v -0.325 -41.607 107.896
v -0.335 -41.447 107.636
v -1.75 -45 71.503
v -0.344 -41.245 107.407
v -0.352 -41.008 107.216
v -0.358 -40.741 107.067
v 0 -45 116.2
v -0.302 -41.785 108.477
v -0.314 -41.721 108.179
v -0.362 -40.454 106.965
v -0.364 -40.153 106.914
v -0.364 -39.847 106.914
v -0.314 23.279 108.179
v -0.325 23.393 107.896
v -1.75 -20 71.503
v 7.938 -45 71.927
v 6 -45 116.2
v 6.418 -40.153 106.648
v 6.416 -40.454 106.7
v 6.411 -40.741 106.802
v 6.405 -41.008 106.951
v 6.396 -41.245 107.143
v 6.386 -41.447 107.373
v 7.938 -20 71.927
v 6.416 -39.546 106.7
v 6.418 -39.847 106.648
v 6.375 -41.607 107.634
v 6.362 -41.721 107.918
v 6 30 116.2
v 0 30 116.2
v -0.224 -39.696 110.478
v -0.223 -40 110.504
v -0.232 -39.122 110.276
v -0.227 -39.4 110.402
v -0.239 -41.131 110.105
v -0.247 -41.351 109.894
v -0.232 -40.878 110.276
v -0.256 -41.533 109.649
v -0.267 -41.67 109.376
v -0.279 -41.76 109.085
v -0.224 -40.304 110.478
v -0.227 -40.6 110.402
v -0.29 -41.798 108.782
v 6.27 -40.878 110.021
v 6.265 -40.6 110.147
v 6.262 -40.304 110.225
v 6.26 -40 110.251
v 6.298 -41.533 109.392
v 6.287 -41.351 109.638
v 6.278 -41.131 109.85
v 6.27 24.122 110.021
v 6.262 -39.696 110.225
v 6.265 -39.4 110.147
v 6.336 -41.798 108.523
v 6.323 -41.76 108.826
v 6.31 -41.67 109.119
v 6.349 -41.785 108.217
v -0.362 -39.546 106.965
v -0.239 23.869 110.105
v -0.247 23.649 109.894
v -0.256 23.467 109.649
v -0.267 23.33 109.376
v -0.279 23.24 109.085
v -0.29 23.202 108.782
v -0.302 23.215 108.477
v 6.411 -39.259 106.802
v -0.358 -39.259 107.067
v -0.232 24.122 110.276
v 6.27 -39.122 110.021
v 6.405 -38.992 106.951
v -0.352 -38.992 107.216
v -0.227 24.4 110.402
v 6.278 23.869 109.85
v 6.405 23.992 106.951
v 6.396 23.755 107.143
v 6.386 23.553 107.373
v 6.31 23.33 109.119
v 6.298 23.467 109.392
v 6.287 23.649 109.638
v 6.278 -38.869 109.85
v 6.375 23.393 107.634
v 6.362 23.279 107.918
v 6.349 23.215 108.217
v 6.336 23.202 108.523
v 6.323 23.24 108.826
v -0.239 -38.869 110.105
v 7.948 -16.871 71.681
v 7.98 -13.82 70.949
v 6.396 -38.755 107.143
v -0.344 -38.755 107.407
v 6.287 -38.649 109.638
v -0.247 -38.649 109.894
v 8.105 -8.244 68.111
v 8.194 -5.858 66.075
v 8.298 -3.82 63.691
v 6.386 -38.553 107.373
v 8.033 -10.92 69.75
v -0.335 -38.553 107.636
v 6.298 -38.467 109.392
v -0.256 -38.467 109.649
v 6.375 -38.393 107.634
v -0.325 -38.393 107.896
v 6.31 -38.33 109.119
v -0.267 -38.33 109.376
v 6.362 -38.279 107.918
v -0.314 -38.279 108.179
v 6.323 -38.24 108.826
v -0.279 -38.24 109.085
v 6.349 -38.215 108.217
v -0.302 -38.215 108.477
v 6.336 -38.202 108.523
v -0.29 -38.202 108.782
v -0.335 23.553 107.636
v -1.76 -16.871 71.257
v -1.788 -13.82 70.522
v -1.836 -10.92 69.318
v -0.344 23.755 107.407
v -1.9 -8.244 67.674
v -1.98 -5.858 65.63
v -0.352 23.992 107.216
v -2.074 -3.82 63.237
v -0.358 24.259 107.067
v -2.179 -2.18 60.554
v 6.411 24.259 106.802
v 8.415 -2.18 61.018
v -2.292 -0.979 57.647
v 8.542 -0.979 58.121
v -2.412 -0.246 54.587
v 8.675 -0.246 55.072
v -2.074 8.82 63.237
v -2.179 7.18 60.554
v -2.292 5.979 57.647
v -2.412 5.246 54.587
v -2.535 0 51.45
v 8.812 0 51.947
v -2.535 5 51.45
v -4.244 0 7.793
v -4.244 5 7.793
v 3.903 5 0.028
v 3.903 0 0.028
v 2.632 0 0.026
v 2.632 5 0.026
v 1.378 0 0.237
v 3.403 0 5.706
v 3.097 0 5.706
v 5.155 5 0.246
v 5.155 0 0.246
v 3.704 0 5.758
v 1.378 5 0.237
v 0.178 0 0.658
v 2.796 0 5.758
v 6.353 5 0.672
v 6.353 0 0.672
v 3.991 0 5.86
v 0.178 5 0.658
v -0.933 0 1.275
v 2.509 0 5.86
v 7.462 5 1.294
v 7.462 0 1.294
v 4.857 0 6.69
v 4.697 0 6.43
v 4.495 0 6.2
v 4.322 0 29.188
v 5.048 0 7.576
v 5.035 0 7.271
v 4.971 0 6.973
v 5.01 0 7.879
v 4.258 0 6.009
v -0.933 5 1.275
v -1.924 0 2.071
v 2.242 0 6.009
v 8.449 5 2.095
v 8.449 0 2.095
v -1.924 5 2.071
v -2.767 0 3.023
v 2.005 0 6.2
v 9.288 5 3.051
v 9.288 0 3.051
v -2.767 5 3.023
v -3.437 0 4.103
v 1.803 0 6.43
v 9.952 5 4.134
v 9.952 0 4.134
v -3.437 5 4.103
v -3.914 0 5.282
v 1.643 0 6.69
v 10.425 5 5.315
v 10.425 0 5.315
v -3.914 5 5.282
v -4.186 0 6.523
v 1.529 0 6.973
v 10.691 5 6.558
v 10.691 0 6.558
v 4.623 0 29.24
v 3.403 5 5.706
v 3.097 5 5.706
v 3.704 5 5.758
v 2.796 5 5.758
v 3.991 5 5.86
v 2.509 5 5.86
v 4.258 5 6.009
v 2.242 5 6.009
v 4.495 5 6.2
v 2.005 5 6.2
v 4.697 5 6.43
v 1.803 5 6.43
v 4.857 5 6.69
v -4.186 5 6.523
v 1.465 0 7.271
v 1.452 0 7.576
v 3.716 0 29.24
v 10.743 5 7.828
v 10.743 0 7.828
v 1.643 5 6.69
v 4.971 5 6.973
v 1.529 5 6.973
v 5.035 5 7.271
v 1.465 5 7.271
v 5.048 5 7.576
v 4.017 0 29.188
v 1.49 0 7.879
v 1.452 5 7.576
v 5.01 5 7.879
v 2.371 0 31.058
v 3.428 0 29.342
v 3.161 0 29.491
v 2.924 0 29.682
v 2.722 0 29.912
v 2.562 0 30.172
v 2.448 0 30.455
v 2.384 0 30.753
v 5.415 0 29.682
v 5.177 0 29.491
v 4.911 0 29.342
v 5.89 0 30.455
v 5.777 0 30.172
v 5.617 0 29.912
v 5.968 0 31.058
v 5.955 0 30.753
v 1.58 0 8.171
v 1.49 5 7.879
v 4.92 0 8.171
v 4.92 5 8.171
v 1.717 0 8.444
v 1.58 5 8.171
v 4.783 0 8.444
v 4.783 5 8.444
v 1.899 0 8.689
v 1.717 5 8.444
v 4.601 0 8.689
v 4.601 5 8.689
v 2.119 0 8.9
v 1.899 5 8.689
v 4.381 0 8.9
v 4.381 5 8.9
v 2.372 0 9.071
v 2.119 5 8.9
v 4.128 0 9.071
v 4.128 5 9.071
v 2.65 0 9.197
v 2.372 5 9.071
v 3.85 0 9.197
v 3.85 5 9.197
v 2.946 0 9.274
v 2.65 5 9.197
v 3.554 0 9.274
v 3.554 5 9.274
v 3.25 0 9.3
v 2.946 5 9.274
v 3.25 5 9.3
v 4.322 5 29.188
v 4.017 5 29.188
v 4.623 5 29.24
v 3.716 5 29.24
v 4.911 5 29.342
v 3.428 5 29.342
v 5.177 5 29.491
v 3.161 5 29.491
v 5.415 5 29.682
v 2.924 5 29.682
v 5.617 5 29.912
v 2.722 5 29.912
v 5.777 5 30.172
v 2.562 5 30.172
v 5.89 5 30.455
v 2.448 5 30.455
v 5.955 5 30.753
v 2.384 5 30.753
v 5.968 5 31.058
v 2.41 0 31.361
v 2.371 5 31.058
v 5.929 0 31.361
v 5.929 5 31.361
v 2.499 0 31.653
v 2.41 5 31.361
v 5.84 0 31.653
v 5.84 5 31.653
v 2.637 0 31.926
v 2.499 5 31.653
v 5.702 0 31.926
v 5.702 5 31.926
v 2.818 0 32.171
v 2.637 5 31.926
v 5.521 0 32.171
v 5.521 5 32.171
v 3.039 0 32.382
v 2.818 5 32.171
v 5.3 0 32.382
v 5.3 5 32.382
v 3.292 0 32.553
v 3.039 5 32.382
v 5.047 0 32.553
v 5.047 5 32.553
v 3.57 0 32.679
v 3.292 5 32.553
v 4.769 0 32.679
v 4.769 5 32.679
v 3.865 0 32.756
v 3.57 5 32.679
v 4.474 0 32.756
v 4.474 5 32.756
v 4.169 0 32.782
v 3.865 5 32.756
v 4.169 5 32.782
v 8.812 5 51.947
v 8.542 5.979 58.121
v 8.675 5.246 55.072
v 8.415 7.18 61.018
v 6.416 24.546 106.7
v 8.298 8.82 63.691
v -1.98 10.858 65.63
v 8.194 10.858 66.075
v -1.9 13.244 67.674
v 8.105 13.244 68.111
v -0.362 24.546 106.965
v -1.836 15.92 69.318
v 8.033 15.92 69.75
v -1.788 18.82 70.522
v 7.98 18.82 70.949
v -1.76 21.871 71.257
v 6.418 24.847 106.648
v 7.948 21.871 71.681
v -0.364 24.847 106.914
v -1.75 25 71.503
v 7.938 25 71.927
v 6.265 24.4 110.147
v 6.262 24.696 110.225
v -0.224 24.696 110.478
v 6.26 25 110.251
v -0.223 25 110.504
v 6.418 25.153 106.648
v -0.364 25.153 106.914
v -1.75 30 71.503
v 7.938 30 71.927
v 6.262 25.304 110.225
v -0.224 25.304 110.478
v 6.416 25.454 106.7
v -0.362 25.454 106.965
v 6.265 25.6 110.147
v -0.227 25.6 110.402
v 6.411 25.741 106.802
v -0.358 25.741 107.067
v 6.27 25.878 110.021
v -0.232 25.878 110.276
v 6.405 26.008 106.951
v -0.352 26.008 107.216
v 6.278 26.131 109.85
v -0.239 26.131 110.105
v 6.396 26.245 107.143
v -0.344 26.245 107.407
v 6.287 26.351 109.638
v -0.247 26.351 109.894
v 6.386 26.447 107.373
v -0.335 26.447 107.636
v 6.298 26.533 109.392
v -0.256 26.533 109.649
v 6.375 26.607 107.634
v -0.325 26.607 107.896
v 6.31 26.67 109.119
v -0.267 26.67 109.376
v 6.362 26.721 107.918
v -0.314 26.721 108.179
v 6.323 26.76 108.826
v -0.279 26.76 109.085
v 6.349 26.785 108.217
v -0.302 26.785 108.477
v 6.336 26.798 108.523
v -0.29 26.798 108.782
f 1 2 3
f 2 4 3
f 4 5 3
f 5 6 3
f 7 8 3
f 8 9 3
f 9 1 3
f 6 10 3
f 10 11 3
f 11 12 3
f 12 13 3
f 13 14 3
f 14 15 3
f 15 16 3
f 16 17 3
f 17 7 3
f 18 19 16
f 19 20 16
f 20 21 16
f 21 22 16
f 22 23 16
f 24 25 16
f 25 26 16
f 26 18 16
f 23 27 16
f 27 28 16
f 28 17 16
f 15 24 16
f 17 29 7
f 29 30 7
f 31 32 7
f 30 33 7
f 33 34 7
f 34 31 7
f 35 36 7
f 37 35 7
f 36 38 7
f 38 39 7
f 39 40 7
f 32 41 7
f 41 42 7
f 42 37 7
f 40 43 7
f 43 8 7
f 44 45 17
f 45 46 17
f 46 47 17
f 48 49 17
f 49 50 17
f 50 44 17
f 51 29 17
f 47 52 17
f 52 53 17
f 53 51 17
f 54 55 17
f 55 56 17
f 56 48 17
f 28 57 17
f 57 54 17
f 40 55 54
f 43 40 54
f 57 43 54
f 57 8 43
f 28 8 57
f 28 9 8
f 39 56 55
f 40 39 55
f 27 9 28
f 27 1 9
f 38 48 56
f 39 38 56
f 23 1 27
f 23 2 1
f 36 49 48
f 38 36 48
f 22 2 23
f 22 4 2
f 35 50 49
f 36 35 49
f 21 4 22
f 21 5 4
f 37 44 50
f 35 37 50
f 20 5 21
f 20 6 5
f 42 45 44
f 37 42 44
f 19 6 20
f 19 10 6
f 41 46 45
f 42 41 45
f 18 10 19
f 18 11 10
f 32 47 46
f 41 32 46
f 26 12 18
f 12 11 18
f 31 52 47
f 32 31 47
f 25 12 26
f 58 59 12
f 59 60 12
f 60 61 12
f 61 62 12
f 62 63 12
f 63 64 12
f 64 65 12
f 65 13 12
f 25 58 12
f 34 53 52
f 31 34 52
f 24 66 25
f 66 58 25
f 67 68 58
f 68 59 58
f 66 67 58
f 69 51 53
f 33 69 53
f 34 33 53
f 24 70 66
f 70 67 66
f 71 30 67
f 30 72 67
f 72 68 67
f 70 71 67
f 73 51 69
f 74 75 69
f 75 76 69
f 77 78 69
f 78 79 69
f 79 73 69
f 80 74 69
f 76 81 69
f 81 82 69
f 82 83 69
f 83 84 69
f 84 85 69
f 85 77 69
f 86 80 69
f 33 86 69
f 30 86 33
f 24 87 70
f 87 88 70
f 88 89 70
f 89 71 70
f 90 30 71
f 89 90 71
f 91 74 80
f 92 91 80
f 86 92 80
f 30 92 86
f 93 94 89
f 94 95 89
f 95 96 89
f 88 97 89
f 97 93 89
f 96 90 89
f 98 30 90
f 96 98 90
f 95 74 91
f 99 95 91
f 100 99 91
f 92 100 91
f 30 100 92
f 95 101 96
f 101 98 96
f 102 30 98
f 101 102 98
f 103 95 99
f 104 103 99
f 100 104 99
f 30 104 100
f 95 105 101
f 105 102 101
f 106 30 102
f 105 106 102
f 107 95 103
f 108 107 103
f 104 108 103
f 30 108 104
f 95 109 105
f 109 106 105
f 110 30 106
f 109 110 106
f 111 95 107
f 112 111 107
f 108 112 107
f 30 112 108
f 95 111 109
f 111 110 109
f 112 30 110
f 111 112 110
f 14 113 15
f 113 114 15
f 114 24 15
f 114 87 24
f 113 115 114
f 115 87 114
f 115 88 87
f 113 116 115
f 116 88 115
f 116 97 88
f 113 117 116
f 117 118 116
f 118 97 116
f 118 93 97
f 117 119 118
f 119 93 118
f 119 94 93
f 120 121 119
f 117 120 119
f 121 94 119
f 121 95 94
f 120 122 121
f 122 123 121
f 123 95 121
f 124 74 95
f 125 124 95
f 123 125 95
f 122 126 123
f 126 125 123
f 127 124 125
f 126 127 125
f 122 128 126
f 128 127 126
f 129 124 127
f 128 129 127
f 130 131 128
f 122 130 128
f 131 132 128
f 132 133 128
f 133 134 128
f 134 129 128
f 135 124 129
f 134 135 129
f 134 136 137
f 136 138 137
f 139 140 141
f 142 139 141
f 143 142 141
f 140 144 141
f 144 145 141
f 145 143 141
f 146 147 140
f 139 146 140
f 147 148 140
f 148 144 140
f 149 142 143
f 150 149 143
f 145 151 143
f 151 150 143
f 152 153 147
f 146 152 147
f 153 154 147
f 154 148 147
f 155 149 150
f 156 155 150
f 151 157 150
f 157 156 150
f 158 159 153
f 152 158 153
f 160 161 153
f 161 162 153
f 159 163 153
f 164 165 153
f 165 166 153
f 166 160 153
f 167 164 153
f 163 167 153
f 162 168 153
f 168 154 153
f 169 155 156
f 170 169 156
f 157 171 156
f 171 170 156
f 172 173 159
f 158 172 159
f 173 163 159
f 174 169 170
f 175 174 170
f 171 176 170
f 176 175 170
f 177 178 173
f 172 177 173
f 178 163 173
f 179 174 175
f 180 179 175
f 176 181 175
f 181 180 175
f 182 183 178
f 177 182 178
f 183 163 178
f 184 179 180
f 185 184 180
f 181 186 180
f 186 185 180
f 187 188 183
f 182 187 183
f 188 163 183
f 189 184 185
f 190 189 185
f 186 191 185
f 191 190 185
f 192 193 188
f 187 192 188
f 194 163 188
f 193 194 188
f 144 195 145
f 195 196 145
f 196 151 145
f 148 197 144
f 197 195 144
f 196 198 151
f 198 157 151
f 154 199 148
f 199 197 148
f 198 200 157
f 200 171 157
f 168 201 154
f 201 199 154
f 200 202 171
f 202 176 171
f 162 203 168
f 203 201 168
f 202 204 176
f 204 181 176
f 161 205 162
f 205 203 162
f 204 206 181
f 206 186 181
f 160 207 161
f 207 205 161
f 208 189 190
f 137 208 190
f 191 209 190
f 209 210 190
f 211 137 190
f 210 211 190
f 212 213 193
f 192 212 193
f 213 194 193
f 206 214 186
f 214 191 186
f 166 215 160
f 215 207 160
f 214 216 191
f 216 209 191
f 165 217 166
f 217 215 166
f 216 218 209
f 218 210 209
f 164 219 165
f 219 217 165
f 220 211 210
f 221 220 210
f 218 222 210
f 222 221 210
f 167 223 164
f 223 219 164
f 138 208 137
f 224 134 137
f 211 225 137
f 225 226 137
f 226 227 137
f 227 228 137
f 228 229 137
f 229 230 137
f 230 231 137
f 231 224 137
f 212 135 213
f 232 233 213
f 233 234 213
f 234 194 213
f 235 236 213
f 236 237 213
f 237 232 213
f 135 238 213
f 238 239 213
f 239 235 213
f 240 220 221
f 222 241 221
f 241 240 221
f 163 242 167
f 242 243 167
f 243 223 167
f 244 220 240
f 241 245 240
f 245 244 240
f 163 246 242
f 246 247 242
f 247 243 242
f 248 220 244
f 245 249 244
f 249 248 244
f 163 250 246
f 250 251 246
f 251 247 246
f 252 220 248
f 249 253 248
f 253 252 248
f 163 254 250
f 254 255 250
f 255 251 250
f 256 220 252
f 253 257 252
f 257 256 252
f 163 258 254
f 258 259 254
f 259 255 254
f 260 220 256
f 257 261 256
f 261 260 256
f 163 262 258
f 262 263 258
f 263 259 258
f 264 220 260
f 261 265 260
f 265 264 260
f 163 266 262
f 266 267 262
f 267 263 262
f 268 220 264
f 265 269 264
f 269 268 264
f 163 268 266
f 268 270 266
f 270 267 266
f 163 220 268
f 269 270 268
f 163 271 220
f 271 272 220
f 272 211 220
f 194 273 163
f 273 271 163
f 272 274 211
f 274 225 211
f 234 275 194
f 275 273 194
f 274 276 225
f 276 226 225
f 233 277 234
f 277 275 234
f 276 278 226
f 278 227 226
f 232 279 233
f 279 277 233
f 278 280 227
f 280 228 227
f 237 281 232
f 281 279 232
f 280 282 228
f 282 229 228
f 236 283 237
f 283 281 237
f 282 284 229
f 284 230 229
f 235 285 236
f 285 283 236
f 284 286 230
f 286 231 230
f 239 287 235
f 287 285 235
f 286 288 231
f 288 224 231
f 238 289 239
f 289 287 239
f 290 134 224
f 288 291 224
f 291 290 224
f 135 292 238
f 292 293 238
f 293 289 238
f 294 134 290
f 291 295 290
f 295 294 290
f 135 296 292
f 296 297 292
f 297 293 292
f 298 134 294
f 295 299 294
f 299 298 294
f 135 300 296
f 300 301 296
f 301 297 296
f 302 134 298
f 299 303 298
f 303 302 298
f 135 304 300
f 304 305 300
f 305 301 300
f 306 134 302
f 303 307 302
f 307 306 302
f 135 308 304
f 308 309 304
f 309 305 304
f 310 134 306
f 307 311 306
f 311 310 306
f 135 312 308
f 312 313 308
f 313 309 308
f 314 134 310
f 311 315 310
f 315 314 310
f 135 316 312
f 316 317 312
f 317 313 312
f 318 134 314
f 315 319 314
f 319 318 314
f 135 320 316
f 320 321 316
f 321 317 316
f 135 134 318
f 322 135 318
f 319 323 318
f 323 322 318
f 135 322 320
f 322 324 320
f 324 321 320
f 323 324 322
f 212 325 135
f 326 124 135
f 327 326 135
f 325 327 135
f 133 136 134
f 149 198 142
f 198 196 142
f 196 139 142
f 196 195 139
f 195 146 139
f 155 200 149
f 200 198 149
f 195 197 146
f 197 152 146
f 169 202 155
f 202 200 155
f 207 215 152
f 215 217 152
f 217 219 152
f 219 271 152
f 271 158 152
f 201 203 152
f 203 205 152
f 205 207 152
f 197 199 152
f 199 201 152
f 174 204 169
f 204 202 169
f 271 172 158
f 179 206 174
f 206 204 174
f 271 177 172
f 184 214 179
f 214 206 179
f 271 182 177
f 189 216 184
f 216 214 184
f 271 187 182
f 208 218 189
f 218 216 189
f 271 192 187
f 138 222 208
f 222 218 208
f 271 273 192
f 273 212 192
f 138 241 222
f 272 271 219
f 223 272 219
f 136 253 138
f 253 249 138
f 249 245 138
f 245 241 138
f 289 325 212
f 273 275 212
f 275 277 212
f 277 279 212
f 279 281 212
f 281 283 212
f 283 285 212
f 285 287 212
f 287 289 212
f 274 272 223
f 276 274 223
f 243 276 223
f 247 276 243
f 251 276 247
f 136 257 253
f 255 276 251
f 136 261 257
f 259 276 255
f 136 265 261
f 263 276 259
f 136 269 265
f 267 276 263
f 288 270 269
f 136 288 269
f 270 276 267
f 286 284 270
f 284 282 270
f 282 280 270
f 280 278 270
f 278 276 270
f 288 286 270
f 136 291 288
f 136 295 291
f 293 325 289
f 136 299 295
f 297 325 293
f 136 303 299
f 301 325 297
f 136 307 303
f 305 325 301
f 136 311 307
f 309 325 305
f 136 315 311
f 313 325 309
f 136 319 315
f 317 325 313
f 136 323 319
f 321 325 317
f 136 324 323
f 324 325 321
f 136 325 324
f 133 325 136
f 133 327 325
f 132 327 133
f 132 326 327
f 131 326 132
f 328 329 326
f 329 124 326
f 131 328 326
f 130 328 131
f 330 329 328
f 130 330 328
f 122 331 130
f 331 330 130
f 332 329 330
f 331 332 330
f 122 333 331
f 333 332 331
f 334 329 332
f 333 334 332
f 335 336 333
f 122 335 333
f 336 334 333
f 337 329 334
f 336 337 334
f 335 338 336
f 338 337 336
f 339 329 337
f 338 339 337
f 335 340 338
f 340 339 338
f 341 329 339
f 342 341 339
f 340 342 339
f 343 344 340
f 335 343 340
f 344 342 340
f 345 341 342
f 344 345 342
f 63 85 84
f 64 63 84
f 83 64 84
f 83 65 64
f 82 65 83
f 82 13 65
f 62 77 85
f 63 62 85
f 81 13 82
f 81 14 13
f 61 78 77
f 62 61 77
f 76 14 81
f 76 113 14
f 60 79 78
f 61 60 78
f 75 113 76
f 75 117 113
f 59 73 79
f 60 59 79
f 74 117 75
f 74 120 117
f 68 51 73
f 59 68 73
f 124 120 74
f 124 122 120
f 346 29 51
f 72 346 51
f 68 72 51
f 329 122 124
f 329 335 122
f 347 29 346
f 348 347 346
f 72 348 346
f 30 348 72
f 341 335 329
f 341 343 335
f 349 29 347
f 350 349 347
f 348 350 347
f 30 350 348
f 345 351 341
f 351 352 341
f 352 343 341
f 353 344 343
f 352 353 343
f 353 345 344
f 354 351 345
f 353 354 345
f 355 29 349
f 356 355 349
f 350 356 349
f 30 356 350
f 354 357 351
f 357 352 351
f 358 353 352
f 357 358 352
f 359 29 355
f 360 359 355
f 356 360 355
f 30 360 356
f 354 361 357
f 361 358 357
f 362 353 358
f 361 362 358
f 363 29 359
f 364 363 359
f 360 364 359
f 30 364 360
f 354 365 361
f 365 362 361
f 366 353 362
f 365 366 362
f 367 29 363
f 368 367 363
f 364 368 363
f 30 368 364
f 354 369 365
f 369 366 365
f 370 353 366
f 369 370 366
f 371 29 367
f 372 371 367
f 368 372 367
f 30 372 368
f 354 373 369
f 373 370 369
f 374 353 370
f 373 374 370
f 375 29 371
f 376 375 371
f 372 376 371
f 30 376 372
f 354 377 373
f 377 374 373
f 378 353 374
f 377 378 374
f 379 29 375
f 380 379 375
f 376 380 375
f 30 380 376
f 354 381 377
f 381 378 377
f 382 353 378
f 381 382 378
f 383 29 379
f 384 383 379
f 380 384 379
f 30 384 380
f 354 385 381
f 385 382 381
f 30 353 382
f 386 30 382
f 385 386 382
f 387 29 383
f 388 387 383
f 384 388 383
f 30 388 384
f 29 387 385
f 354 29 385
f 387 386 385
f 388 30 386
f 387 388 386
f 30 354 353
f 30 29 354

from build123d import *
from build123d.topology import SkipClean

# Parameters (mm, degrees)
BOSS_EXTRUDE1_DEPTH      = 5
BOSS_EXTRUDE2_DEPTH      = 25
BOSS_EXTRUDE2_DEPTH_BACK = 50
FILLET1_R                = 20
SKETCH3_R                = 1.8
CUT_EXTRUDE1_DEPTH       = 19
SKETCH4_R                = 1.8
CUT_EXTRUDE2_DEPTH       = 10


with BuildPart() as part:
    # Sketch1 → Boss-Extrude1 (new body)
    with SkipClean():  # the faces are left unmerged after this step: merging them gives an invalid solid
        with BuildSketch(Plane(origin=(0, 0, 0), x_dir=(1, 0, 0), z_dir=(0, 1, 0))):
            with BuildLine():
                ThreePointArc((0, -0.740747083), (-3.176101933, -3.632802831), (-4.24425851, -7.793409934))
                Line((-4.24425851, -7.793409934), (0, -14.259252917))
                Line((0, -14.259252917), (0, -0.740747083))
            make_face()
            with BuildLine():
                Line((6, -0.522357132), (6, -14.477642868))
                Line((6, -14.477642868), (10.742827875, -7.827918338))
                ThreePointArc((10.742827875, -7.827918338), (10.748206754, -7.663998381), (10.75, -7.5))
                ThreePointArc((10.75, -7.5), (9.449798384, -3.279514246), (6, -0.522357132))
            make_face()
            with BuildLine():
                Line((0, -0.740747083), (0, -14.259252917))
                ThreePointArc((0, -14.259252917), (2.977193214, -14.995036788), (6, -14.477642868))
                Line((6, -14.477642868), (6, -0.522357132))
                ThreePointArc((6, -0.522357132), (4.649585383, -0.131746424), (3.25, 0))
                ThreePointArc((3.25, 0), (1.583326199, -0.187531303), (0, -0.740747083))
            make_face()
            with BuildLine():
                ThreePointArc((0, -14.259252917), (-3.019892671, -11.615634325), (-4.24425851, -7.793409934))
                Line((-4.24425851, -7.793409934), (0, -116.2))
                Line((0, -116.2), (0, -14.259252917))
            make_face()
            with BuildLine():
                Line((6, -14.477642868), (6, -116.2))
                Line((6, -116.2), (10.742827875, -7.827918338))
                ThreePointArc((10.742827875, -7.827918338), (9.356028972, -11.855044225), (6, -14.477642868))
            make_face()
            with BuildLine():
                Line((0, -14.259252917), (0, -116.2))
                Line((0, -116.2), (6, -116.2))
                Line((6, -116.2), (6, -14.477642868))
                ThreePointArc((6, -14.477642868), (2.977193214, -14.995036788), (0, -14.259252917))
            make_face()
            with BuildLine():
                Line((10.742827875, -7.827918338), (6, -14.477642868))
                ThreePointArc((6, -14.477642868), (9.356028972, -11.855044225), (10.742827875, -7.827918338))
            make_face()
            with BuildLine():
                Line((0, -14.259252917), (-4.24425851, -7.793409934))
                ThreePointArc((-4.24425851, -7.793409934), (-3.019892671, -11.615634325), (0, -14.259252917))
            make_face()
        extrude(amount=BOSS_EXTRUDE1_DEPTH)

    # Sketch2 → Boss-Extrude2 (add, two sides: drawn at the far end of the back side and taken through both)
    with BuildSketch(Plane(origin=(0, 5, 0), x_dir=(1, 0, 0), z_dir=(0, 1, 0)).offset(-BOSS_EXTRUDE2_DEPTH_BACK)):
        Polygon((-1.749928594, -71.503431366), (7.937559289, -71.927397454), (6, -116.2), (0, -116.2), align=None)
    extrude(amount=BOSS_EXTRUDE2_DEPTH + BOSS_EXTRUDE2_DEPTH_BACK)

    # Fillet1
    fillet1_edges = [part.edges().sort_by_distance(p)[0] for p in [
        (3.093815347, 5, 71.71541441),
        (3.093815347, 0, 71.71541441),
    ]]
    fillet(fillet1_edges, radius=FILLET1_R)

    # Sketch3 → Cut-Extrude1 (cut)
    with BuildSketch(Plane(origin=(0, 5, 0), x_dir=(1, 0, 0), z_dir=(0, 1, 0))):
        with Locations(Location((3.25, -7.5, 0), (0, 0, 270))):
            Circle(SKETCH3_R)
        with Locations(Location((4.169351127, -30.982009997, 0), (0, 0, 270))):
            Circle(SKETCH3_R)
    extrude(amount=-CUT_EXTRUDE1_DEPTH, mode=Mode.SUBTRACT)

    # Sketch4 → Cut-Extrude2 (cut)
    with BuildSketch(Plane(origin=(-4.542417883, 0, 0.177841548), x_dir=(0.03912132455492767, 0, 0.9992344679628841), z_dir=(-0.9992344679628841, 0, 0.03912132455492767))):
        with Locations((108.611045177, -40)):
            Circle(SKETCH4_R)
        with Locations((108.611045177, 25)):
            Circle(SKETCH4_R)
    extrude(amount=-CUT_EXTRUDE2_DEPTH, mode=Mode.SUBTRACT)


solid = part.part
